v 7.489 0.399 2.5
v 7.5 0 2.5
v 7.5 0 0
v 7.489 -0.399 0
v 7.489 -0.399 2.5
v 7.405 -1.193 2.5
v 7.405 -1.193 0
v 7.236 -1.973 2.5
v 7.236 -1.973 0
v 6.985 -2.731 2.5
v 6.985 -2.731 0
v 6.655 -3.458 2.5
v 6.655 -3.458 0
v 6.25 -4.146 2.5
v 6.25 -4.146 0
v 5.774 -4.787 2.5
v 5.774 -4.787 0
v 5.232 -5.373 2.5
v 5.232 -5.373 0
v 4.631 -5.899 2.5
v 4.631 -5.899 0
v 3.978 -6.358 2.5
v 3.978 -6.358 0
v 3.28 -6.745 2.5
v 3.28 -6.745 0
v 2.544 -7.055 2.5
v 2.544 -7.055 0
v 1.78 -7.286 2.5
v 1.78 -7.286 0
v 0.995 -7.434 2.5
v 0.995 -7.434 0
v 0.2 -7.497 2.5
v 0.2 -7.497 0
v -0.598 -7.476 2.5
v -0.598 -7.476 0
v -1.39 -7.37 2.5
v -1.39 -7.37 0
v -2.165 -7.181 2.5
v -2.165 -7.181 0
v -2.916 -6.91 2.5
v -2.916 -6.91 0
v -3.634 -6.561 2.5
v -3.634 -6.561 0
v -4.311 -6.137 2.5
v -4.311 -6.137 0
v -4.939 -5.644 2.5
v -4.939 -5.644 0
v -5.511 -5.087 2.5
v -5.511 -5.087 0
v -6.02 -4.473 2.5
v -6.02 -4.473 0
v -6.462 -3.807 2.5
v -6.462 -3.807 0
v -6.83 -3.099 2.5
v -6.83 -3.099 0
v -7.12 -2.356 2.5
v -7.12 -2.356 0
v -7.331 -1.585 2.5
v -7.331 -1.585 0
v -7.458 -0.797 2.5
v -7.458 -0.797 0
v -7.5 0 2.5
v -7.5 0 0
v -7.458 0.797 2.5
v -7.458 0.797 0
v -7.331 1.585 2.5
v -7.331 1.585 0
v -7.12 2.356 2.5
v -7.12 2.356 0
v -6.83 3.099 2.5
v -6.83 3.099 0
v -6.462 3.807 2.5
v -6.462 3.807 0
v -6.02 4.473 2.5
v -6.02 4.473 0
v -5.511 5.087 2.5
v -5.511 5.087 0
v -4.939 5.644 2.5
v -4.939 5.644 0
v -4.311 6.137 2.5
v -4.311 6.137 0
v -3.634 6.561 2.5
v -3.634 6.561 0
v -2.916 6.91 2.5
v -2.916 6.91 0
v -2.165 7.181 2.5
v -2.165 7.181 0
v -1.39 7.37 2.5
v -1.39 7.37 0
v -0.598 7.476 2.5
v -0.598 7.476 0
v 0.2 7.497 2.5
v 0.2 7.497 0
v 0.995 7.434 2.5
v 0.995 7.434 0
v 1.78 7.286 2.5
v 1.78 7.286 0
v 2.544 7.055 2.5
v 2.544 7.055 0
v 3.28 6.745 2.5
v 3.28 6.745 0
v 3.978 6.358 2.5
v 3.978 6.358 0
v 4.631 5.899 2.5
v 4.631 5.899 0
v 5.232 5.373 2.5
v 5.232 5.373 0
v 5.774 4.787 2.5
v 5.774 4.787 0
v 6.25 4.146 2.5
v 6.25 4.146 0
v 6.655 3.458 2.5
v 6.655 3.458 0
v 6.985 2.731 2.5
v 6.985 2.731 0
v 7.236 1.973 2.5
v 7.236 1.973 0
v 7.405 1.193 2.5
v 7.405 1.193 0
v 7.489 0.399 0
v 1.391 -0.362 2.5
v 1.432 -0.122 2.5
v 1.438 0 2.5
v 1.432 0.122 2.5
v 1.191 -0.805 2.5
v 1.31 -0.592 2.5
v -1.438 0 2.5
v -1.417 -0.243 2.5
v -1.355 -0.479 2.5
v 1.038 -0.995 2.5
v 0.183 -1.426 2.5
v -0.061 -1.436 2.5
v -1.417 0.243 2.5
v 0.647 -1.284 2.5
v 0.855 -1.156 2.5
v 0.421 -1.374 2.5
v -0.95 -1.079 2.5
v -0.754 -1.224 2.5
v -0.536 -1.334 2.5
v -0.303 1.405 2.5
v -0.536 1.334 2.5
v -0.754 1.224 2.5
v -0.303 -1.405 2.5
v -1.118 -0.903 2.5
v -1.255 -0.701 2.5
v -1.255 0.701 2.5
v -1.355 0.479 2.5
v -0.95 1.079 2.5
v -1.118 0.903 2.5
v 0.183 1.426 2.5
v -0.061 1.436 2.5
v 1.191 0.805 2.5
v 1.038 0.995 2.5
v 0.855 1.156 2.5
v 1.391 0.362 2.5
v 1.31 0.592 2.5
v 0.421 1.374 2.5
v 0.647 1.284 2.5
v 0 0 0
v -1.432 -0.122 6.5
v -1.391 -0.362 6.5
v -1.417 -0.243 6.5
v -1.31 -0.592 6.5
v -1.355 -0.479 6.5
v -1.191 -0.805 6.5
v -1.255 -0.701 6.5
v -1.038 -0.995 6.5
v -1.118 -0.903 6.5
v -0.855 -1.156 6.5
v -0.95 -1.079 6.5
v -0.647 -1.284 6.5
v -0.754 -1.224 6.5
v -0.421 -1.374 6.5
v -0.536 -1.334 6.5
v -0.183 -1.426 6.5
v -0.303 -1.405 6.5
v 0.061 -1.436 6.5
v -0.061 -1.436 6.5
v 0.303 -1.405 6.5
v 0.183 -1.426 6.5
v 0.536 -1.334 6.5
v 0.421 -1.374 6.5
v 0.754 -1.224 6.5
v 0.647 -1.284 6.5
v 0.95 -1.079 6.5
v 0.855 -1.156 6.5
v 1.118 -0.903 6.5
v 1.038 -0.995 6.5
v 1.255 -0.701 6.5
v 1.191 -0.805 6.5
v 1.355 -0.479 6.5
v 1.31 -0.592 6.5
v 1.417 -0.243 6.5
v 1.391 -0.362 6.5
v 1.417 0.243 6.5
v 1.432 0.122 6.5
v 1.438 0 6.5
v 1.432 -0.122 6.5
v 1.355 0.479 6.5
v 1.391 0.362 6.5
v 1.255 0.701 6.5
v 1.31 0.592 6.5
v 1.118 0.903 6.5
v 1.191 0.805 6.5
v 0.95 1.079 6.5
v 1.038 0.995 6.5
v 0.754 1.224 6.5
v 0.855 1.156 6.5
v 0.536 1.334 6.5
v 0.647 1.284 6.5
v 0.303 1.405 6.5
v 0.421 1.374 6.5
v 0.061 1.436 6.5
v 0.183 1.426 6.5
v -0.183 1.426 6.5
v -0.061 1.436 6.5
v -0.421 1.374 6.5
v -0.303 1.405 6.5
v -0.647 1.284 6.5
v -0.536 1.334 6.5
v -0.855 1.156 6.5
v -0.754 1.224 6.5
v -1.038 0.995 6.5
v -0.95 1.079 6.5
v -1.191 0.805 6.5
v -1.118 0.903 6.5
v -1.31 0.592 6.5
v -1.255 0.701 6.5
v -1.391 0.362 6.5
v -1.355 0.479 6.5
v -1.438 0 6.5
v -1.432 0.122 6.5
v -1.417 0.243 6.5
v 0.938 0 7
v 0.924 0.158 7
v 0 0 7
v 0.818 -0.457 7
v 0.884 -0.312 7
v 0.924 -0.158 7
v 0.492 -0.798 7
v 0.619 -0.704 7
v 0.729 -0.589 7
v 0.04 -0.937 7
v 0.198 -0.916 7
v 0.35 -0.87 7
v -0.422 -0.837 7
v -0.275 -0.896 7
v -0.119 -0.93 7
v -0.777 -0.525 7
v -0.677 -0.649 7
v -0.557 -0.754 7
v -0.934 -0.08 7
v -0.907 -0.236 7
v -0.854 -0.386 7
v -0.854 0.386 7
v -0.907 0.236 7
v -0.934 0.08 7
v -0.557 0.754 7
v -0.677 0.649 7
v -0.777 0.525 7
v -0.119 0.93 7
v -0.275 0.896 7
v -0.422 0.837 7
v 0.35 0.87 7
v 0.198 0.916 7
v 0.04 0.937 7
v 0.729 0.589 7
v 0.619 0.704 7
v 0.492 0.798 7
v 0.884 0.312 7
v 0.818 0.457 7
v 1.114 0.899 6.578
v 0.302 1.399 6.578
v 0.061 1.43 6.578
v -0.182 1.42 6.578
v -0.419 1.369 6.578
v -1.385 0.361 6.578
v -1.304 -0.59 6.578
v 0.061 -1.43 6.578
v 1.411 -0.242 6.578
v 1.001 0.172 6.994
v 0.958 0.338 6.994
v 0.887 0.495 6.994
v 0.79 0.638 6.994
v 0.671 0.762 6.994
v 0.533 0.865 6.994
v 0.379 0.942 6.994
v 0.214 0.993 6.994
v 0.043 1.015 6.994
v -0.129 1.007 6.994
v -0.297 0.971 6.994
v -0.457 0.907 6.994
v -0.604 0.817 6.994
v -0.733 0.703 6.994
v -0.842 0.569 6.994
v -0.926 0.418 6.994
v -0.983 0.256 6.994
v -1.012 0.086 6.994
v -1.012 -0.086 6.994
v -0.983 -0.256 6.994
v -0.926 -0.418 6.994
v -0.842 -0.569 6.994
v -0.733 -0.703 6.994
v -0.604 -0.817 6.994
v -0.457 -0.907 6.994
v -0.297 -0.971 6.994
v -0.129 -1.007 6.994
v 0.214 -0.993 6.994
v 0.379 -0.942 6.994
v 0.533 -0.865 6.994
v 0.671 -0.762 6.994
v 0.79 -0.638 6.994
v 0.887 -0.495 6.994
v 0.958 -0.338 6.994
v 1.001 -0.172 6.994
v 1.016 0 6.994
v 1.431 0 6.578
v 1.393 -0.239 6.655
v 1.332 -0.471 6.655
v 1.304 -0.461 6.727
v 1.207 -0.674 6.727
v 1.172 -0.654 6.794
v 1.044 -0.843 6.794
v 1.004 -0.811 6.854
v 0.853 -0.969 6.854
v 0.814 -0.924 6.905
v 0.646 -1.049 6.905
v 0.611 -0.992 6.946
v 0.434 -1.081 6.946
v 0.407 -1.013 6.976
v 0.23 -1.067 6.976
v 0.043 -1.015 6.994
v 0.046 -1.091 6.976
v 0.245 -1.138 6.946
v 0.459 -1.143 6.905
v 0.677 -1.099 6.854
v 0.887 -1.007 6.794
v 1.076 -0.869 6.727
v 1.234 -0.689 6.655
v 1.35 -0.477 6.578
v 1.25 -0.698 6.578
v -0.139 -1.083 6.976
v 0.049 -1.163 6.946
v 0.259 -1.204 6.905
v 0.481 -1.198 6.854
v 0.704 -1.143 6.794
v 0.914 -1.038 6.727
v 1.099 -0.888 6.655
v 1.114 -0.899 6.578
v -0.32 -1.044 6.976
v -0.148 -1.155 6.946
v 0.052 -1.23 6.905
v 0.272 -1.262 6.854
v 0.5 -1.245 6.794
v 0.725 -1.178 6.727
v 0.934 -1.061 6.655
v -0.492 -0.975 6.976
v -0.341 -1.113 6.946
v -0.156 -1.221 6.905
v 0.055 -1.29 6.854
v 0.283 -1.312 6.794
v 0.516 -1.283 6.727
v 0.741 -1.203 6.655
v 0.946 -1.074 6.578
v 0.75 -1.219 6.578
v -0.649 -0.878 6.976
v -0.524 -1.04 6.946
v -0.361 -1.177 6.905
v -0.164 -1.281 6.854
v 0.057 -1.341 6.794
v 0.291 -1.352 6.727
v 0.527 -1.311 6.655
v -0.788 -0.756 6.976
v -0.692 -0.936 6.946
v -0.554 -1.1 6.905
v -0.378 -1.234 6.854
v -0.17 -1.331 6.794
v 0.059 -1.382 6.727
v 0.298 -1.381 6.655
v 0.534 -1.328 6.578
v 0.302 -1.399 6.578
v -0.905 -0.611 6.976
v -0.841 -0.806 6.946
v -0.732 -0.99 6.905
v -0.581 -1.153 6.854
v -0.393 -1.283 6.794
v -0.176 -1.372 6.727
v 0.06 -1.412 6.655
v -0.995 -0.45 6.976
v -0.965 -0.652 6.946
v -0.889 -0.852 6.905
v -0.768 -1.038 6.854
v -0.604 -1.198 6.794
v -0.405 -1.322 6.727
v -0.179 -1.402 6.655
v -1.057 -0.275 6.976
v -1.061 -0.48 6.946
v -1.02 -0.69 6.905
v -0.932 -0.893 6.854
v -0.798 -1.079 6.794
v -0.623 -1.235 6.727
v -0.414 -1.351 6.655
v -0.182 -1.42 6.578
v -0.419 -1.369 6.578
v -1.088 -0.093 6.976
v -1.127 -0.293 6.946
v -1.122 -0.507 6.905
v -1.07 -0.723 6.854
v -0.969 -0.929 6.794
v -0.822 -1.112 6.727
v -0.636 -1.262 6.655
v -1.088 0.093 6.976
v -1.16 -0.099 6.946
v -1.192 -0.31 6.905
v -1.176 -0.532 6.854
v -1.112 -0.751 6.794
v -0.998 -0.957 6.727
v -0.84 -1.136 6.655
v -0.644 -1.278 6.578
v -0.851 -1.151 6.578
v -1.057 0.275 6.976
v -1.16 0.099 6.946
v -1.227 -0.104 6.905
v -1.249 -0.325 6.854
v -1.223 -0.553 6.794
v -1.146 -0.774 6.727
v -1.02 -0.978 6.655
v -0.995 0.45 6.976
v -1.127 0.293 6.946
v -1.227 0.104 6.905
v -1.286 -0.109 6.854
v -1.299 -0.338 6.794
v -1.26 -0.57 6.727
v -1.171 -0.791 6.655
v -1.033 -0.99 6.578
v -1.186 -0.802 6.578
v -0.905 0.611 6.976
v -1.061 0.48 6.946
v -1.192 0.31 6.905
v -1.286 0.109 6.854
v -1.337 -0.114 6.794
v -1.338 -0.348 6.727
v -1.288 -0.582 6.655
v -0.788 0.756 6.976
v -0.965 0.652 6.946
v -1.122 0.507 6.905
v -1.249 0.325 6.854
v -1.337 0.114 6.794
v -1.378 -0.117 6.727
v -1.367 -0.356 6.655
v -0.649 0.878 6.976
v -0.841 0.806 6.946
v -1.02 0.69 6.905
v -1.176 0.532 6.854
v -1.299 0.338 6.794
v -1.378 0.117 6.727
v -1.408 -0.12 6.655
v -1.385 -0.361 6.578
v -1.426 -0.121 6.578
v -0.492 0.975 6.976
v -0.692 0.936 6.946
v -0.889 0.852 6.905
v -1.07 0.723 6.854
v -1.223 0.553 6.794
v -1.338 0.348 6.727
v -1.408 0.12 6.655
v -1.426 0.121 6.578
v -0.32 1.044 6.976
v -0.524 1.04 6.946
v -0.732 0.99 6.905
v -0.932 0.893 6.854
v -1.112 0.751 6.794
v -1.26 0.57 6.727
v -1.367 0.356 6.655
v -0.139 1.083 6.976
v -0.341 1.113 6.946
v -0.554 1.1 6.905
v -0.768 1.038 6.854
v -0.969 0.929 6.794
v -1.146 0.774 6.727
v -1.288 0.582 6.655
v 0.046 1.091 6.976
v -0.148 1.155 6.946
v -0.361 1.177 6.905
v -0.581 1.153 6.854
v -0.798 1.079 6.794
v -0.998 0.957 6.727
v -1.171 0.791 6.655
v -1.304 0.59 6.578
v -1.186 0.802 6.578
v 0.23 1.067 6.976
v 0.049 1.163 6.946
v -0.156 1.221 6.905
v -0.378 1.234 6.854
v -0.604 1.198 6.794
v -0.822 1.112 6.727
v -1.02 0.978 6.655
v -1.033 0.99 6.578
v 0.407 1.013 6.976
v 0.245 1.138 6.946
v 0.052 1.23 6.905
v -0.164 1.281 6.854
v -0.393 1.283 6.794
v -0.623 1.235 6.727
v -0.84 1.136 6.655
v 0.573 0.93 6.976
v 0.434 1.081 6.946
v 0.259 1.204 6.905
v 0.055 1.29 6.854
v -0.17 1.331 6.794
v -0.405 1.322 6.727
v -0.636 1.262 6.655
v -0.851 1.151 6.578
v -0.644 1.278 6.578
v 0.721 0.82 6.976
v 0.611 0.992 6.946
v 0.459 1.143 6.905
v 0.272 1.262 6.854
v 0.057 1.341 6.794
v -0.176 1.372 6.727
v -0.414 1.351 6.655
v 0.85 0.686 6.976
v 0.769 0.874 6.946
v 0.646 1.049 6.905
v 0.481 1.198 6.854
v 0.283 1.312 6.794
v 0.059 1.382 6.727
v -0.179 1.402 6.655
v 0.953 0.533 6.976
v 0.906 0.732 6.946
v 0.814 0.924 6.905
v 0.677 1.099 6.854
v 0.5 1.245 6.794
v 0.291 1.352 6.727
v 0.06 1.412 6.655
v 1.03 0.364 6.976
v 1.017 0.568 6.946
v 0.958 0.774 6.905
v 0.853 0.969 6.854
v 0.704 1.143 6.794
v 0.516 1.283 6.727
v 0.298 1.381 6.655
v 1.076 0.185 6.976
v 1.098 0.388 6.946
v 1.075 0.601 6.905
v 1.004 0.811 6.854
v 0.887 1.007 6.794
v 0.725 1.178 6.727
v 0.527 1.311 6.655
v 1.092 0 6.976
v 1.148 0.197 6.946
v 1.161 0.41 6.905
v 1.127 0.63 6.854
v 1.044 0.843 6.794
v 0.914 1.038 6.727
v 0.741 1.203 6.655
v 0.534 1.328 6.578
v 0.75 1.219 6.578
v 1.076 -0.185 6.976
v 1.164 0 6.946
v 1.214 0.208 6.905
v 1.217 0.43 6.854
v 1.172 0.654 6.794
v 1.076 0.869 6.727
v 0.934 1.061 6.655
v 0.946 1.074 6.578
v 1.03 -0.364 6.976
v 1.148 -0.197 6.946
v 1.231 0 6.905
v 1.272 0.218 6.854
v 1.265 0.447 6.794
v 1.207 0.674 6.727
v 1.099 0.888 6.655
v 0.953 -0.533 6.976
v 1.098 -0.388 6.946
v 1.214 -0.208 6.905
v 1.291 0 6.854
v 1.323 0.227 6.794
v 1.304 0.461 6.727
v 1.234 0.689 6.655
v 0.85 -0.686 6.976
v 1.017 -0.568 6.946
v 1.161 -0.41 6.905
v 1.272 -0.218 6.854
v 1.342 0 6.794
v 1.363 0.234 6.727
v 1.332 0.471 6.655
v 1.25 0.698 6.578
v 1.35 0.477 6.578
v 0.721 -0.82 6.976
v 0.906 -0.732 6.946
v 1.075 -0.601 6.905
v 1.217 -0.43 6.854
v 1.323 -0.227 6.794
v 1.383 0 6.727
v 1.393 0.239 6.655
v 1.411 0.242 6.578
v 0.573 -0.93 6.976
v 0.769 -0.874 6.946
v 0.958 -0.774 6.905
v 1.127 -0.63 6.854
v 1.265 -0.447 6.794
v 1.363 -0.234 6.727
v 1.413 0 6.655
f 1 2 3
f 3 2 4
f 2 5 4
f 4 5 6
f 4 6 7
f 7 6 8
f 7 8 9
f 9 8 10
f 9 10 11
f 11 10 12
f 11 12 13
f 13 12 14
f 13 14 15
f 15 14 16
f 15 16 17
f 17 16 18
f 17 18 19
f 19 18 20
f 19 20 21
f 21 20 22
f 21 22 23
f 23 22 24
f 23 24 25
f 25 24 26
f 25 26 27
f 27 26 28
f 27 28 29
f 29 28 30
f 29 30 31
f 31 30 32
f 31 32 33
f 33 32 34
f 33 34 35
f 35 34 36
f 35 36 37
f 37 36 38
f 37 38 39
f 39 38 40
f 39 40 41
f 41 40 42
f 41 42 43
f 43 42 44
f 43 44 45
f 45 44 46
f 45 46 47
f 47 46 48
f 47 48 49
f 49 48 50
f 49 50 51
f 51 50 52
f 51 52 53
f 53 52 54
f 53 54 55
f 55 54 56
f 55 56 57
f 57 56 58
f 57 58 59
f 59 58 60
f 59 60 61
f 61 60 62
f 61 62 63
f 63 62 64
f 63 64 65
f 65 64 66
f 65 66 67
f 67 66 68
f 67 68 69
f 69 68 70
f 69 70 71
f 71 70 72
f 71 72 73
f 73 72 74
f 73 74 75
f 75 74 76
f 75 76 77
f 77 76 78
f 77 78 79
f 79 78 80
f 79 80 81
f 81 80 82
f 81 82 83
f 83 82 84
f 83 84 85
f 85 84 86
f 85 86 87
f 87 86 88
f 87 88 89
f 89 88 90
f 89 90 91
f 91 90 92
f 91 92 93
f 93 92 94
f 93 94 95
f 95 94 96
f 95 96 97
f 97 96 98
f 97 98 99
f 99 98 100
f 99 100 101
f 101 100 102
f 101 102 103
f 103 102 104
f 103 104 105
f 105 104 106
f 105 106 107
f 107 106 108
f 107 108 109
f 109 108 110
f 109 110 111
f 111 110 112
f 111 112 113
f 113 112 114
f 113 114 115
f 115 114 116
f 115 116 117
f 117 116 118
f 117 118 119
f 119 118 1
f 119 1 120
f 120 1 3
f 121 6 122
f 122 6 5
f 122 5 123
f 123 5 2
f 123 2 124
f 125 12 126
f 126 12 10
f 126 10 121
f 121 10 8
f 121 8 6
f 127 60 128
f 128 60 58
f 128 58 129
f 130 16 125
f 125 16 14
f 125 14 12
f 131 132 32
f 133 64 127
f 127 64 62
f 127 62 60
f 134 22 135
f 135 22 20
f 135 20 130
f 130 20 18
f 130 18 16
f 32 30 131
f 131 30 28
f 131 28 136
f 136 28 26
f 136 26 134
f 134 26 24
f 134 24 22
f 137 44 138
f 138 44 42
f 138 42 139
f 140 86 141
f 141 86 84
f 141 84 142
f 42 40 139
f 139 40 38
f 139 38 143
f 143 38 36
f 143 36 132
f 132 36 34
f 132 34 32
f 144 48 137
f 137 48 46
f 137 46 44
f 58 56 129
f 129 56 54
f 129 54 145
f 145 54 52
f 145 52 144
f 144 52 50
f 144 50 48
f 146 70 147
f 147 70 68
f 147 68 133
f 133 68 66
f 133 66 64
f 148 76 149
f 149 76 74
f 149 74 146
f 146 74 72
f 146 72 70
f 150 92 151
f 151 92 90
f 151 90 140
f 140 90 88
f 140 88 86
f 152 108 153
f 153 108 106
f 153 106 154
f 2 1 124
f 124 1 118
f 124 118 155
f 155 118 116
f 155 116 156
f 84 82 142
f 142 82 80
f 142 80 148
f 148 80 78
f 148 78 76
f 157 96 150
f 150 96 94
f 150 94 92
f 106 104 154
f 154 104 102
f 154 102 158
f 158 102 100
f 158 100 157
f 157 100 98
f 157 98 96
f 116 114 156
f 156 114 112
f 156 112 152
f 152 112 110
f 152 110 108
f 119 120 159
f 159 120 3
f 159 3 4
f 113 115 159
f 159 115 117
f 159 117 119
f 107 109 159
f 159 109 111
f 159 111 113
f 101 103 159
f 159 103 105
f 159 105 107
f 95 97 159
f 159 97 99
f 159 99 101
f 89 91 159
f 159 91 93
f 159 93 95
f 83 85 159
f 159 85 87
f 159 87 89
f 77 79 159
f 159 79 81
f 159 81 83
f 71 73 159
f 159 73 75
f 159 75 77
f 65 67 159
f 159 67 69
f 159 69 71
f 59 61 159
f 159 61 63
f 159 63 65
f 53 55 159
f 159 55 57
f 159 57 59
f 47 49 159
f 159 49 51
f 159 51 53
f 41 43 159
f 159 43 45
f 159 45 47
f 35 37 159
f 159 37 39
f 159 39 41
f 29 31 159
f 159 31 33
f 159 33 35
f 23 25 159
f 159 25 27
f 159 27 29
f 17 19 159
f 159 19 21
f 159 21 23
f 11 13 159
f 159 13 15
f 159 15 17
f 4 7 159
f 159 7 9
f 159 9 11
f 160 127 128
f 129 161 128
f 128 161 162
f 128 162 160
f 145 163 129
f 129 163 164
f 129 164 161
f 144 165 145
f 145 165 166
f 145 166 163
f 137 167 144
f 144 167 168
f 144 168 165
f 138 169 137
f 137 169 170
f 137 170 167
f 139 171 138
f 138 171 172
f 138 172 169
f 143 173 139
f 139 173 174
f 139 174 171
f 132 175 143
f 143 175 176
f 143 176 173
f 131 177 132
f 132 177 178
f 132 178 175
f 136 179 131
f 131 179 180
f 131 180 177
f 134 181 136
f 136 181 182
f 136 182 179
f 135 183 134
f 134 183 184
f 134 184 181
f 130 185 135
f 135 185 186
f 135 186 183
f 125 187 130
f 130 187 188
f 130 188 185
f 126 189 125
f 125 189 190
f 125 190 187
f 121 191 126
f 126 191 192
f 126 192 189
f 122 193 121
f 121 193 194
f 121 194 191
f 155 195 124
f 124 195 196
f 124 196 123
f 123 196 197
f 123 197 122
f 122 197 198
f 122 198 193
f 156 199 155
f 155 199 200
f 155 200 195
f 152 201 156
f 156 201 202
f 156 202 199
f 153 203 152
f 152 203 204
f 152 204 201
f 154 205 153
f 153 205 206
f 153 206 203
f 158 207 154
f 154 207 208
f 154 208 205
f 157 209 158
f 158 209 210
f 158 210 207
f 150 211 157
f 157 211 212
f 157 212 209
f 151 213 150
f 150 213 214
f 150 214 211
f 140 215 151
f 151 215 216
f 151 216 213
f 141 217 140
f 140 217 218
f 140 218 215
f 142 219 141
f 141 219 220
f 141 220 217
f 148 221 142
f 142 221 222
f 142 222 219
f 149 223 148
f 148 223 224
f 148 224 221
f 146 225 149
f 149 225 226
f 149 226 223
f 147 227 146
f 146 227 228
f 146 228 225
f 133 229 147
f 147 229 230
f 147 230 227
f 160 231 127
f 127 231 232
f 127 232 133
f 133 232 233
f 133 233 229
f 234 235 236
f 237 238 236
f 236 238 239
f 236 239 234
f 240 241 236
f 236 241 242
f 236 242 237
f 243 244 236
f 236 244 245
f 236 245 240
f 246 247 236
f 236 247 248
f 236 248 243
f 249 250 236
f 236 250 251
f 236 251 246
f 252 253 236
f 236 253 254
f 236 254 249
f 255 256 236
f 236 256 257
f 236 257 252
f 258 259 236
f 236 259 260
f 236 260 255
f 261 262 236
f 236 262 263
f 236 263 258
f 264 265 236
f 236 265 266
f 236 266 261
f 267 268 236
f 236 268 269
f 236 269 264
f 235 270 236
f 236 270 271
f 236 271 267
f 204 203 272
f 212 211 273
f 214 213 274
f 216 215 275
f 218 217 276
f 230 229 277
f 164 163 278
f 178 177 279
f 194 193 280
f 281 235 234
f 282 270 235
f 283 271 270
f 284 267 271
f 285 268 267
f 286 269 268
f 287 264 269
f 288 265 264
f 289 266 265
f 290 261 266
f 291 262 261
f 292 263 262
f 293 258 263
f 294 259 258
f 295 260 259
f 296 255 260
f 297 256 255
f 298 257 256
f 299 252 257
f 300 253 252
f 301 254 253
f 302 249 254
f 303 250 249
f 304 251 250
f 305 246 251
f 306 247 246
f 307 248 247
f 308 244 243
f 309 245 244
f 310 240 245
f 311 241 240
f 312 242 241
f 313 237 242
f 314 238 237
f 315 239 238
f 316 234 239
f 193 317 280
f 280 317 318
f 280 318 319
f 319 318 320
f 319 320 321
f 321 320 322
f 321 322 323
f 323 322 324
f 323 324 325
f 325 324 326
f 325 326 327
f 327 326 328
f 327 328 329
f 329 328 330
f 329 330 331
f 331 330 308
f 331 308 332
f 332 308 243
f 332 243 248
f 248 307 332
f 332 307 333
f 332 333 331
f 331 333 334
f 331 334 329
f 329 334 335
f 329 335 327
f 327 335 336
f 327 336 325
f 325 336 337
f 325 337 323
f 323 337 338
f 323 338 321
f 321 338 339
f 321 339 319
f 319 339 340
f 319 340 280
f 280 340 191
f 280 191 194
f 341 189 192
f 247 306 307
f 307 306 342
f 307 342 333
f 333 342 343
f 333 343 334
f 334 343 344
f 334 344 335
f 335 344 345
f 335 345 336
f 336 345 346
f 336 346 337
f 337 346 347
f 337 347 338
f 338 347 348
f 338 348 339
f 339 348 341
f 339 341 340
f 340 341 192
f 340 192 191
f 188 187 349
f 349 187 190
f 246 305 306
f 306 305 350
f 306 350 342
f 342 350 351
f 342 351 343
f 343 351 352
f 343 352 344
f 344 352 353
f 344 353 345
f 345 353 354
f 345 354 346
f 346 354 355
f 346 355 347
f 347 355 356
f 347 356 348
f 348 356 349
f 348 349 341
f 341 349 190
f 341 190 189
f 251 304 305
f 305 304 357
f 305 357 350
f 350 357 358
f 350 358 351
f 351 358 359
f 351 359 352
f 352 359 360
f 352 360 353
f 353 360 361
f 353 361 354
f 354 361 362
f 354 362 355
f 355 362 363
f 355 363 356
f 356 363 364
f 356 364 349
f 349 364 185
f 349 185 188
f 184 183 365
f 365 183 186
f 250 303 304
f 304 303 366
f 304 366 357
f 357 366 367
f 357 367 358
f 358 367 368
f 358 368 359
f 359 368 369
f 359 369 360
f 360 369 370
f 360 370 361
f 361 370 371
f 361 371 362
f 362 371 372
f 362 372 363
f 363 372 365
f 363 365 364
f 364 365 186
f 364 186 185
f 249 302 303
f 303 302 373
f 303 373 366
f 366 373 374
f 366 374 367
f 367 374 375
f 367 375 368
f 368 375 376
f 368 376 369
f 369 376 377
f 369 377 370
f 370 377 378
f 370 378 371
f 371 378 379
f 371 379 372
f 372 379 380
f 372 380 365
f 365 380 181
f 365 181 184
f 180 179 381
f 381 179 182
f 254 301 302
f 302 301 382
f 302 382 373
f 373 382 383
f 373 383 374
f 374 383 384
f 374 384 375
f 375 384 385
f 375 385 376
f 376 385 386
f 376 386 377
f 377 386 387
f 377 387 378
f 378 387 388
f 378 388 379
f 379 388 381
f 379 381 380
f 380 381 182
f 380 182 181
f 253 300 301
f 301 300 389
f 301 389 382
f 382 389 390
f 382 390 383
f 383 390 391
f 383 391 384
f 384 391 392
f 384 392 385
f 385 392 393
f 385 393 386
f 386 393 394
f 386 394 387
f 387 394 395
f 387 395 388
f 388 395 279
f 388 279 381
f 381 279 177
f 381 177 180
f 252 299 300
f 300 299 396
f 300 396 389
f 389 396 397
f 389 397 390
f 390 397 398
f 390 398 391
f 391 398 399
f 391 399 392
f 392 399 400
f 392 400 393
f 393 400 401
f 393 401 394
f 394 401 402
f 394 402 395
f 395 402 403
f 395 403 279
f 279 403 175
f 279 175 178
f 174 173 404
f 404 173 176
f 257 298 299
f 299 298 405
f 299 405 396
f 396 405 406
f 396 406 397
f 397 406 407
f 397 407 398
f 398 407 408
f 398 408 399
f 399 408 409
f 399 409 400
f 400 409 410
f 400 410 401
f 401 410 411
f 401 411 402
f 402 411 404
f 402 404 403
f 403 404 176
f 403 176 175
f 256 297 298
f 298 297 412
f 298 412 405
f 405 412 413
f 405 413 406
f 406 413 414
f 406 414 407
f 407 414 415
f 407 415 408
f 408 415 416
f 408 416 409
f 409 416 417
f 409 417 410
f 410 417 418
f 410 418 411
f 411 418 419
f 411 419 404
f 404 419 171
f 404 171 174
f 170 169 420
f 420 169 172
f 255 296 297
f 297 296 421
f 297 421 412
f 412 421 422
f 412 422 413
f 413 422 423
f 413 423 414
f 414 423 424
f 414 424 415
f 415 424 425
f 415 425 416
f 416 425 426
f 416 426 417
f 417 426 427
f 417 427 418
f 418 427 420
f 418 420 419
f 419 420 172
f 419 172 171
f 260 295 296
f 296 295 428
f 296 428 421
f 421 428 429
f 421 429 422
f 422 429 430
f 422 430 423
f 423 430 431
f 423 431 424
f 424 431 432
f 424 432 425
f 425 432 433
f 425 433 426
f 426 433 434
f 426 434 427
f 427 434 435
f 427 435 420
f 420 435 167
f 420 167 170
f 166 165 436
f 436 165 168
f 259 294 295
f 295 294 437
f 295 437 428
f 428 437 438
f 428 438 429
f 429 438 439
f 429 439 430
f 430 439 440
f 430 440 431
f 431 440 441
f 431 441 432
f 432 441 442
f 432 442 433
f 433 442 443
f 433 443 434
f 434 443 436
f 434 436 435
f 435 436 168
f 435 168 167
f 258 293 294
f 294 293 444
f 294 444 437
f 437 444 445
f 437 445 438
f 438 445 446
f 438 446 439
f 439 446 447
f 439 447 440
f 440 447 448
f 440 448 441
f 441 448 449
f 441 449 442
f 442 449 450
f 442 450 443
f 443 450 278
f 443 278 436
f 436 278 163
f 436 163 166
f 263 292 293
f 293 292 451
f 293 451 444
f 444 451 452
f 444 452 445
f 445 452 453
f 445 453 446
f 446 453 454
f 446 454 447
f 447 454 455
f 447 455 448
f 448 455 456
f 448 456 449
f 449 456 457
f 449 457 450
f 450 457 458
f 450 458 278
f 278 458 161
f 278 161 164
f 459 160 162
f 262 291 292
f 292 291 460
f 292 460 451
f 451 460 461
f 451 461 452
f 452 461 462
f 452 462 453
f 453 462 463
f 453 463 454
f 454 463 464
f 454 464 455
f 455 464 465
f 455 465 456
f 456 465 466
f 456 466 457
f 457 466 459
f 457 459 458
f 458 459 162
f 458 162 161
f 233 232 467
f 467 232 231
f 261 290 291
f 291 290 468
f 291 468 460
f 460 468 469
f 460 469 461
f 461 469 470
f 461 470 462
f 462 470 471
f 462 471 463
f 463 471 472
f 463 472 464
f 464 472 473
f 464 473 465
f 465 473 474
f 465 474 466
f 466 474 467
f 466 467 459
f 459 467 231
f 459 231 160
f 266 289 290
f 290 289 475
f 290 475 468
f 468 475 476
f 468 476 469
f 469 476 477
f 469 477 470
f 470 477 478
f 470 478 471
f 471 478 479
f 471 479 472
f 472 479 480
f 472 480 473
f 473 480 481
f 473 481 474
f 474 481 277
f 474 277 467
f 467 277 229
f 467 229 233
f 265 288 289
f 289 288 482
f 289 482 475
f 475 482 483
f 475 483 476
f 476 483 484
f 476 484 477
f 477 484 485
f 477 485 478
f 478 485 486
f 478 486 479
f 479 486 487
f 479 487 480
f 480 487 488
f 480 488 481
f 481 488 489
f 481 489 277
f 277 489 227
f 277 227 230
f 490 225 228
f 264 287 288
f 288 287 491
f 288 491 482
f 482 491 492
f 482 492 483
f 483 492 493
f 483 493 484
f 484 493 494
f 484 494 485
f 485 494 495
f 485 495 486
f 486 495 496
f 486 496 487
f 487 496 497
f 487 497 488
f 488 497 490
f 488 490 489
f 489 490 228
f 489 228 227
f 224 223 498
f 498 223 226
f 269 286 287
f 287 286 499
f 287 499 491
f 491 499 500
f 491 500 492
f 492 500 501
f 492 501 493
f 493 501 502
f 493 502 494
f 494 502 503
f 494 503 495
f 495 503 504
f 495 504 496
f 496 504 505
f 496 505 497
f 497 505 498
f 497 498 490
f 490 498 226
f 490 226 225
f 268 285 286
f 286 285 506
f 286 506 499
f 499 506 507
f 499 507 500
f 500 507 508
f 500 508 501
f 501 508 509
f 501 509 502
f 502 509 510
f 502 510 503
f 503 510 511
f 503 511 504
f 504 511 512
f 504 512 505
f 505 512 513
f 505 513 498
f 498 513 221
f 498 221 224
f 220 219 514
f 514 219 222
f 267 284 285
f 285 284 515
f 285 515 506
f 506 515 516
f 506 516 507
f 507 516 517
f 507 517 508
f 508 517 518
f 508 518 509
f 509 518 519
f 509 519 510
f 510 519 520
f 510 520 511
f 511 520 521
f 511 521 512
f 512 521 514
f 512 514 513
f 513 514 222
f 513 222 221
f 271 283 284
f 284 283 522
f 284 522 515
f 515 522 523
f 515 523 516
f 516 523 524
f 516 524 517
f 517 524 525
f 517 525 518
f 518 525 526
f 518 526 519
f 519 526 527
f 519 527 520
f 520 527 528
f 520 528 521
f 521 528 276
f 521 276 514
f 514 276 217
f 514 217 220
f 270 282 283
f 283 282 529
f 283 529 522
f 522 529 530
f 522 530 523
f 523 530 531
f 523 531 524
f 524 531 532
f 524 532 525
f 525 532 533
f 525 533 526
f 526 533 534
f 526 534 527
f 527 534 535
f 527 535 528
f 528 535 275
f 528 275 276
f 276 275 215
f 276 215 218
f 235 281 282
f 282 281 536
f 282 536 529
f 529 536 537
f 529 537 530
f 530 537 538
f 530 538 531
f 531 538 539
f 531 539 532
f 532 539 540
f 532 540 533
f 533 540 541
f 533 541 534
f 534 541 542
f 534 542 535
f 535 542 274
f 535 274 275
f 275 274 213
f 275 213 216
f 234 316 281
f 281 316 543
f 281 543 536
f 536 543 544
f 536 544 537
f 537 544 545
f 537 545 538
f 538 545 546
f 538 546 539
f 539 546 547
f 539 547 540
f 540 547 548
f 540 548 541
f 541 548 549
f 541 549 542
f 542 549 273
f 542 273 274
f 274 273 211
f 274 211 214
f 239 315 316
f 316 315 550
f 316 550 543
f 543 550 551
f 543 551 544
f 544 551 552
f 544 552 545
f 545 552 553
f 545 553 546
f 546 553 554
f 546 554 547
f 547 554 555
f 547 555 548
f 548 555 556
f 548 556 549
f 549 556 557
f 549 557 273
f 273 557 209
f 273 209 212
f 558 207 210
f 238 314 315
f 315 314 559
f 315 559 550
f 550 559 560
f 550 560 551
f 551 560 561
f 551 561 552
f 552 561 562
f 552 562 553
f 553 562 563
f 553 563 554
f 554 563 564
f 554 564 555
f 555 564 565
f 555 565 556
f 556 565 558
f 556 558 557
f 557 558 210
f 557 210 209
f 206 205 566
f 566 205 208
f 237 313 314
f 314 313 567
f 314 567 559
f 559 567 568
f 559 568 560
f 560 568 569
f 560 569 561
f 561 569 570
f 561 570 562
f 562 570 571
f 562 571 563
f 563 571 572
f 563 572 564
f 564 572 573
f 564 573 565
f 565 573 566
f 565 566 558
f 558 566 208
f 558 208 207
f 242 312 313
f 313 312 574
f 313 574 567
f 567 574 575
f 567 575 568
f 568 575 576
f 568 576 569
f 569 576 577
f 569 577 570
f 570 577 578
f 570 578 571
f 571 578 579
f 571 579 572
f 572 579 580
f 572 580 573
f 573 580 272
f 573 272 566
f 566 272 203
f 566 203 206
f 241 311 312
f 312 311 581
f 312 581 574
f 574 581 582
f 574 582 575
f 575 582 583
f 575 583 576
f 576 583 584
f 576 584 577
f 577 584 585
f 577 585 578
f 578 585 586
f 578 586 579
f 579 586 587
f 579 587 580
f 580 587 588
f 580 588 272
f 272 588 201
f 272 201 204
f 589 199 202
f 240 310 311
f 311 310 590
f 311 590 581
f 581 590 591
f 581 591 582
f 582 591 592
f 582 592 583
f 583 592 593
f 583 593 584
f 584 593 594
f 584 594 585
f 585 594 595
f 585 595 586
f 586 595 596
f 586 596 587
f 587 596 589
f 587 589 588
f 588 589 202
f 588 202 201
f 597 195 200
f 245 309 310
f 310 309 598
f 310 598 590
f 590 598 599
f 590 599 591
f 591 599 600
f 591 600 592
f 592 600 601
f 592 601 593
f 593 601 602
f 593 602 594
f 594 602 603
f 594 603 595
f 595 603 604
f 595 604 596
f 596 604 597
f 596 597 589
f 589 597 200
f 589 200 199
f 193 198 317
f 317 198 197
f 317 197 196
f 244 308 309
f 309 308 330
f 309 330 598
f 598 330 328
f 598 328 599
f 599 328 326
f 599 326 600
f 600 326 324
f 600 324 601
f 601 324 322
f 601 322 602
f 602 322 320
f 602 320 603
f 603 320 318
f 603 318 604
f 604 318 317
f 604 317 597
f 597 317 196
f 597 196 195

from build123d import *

# Parameters (mm, degrees)
SKETCH1_R           = 7.5
BOSS_EXTRUDE1_DEPTH = 2.5
SKETCH2_R           = 1.4375
BOSS_EXTRUDE2_DEPTH = 4.5
FILLET1_R           = 0.5


with BuildPart() as part:
    # Sketch1 → Boss-Extrude1 (new body)
    with BuildSketch(Plane.XY):
        Circle(SKETCH1_R)
    extrude(amount=BOSS_EXTRUDE1_DEPTH)

    # Sketch2 → Boss-Extrude2 (add)
    with BuildSketch(Plane.XY.offset(2.5)):
        Circle(SKETCH2_R)
    extrude(amount=BOSS_EXTRUDE2_DEPTH)

    # Fillet1
    fillet1_edges = [part.edges().sort_by_distance(p)[0] for p in [
        (-1.4375, 0, 7),
    ]]
    fillet(fillet1_edges, radius=FILLET1_R)


solid = part.part
